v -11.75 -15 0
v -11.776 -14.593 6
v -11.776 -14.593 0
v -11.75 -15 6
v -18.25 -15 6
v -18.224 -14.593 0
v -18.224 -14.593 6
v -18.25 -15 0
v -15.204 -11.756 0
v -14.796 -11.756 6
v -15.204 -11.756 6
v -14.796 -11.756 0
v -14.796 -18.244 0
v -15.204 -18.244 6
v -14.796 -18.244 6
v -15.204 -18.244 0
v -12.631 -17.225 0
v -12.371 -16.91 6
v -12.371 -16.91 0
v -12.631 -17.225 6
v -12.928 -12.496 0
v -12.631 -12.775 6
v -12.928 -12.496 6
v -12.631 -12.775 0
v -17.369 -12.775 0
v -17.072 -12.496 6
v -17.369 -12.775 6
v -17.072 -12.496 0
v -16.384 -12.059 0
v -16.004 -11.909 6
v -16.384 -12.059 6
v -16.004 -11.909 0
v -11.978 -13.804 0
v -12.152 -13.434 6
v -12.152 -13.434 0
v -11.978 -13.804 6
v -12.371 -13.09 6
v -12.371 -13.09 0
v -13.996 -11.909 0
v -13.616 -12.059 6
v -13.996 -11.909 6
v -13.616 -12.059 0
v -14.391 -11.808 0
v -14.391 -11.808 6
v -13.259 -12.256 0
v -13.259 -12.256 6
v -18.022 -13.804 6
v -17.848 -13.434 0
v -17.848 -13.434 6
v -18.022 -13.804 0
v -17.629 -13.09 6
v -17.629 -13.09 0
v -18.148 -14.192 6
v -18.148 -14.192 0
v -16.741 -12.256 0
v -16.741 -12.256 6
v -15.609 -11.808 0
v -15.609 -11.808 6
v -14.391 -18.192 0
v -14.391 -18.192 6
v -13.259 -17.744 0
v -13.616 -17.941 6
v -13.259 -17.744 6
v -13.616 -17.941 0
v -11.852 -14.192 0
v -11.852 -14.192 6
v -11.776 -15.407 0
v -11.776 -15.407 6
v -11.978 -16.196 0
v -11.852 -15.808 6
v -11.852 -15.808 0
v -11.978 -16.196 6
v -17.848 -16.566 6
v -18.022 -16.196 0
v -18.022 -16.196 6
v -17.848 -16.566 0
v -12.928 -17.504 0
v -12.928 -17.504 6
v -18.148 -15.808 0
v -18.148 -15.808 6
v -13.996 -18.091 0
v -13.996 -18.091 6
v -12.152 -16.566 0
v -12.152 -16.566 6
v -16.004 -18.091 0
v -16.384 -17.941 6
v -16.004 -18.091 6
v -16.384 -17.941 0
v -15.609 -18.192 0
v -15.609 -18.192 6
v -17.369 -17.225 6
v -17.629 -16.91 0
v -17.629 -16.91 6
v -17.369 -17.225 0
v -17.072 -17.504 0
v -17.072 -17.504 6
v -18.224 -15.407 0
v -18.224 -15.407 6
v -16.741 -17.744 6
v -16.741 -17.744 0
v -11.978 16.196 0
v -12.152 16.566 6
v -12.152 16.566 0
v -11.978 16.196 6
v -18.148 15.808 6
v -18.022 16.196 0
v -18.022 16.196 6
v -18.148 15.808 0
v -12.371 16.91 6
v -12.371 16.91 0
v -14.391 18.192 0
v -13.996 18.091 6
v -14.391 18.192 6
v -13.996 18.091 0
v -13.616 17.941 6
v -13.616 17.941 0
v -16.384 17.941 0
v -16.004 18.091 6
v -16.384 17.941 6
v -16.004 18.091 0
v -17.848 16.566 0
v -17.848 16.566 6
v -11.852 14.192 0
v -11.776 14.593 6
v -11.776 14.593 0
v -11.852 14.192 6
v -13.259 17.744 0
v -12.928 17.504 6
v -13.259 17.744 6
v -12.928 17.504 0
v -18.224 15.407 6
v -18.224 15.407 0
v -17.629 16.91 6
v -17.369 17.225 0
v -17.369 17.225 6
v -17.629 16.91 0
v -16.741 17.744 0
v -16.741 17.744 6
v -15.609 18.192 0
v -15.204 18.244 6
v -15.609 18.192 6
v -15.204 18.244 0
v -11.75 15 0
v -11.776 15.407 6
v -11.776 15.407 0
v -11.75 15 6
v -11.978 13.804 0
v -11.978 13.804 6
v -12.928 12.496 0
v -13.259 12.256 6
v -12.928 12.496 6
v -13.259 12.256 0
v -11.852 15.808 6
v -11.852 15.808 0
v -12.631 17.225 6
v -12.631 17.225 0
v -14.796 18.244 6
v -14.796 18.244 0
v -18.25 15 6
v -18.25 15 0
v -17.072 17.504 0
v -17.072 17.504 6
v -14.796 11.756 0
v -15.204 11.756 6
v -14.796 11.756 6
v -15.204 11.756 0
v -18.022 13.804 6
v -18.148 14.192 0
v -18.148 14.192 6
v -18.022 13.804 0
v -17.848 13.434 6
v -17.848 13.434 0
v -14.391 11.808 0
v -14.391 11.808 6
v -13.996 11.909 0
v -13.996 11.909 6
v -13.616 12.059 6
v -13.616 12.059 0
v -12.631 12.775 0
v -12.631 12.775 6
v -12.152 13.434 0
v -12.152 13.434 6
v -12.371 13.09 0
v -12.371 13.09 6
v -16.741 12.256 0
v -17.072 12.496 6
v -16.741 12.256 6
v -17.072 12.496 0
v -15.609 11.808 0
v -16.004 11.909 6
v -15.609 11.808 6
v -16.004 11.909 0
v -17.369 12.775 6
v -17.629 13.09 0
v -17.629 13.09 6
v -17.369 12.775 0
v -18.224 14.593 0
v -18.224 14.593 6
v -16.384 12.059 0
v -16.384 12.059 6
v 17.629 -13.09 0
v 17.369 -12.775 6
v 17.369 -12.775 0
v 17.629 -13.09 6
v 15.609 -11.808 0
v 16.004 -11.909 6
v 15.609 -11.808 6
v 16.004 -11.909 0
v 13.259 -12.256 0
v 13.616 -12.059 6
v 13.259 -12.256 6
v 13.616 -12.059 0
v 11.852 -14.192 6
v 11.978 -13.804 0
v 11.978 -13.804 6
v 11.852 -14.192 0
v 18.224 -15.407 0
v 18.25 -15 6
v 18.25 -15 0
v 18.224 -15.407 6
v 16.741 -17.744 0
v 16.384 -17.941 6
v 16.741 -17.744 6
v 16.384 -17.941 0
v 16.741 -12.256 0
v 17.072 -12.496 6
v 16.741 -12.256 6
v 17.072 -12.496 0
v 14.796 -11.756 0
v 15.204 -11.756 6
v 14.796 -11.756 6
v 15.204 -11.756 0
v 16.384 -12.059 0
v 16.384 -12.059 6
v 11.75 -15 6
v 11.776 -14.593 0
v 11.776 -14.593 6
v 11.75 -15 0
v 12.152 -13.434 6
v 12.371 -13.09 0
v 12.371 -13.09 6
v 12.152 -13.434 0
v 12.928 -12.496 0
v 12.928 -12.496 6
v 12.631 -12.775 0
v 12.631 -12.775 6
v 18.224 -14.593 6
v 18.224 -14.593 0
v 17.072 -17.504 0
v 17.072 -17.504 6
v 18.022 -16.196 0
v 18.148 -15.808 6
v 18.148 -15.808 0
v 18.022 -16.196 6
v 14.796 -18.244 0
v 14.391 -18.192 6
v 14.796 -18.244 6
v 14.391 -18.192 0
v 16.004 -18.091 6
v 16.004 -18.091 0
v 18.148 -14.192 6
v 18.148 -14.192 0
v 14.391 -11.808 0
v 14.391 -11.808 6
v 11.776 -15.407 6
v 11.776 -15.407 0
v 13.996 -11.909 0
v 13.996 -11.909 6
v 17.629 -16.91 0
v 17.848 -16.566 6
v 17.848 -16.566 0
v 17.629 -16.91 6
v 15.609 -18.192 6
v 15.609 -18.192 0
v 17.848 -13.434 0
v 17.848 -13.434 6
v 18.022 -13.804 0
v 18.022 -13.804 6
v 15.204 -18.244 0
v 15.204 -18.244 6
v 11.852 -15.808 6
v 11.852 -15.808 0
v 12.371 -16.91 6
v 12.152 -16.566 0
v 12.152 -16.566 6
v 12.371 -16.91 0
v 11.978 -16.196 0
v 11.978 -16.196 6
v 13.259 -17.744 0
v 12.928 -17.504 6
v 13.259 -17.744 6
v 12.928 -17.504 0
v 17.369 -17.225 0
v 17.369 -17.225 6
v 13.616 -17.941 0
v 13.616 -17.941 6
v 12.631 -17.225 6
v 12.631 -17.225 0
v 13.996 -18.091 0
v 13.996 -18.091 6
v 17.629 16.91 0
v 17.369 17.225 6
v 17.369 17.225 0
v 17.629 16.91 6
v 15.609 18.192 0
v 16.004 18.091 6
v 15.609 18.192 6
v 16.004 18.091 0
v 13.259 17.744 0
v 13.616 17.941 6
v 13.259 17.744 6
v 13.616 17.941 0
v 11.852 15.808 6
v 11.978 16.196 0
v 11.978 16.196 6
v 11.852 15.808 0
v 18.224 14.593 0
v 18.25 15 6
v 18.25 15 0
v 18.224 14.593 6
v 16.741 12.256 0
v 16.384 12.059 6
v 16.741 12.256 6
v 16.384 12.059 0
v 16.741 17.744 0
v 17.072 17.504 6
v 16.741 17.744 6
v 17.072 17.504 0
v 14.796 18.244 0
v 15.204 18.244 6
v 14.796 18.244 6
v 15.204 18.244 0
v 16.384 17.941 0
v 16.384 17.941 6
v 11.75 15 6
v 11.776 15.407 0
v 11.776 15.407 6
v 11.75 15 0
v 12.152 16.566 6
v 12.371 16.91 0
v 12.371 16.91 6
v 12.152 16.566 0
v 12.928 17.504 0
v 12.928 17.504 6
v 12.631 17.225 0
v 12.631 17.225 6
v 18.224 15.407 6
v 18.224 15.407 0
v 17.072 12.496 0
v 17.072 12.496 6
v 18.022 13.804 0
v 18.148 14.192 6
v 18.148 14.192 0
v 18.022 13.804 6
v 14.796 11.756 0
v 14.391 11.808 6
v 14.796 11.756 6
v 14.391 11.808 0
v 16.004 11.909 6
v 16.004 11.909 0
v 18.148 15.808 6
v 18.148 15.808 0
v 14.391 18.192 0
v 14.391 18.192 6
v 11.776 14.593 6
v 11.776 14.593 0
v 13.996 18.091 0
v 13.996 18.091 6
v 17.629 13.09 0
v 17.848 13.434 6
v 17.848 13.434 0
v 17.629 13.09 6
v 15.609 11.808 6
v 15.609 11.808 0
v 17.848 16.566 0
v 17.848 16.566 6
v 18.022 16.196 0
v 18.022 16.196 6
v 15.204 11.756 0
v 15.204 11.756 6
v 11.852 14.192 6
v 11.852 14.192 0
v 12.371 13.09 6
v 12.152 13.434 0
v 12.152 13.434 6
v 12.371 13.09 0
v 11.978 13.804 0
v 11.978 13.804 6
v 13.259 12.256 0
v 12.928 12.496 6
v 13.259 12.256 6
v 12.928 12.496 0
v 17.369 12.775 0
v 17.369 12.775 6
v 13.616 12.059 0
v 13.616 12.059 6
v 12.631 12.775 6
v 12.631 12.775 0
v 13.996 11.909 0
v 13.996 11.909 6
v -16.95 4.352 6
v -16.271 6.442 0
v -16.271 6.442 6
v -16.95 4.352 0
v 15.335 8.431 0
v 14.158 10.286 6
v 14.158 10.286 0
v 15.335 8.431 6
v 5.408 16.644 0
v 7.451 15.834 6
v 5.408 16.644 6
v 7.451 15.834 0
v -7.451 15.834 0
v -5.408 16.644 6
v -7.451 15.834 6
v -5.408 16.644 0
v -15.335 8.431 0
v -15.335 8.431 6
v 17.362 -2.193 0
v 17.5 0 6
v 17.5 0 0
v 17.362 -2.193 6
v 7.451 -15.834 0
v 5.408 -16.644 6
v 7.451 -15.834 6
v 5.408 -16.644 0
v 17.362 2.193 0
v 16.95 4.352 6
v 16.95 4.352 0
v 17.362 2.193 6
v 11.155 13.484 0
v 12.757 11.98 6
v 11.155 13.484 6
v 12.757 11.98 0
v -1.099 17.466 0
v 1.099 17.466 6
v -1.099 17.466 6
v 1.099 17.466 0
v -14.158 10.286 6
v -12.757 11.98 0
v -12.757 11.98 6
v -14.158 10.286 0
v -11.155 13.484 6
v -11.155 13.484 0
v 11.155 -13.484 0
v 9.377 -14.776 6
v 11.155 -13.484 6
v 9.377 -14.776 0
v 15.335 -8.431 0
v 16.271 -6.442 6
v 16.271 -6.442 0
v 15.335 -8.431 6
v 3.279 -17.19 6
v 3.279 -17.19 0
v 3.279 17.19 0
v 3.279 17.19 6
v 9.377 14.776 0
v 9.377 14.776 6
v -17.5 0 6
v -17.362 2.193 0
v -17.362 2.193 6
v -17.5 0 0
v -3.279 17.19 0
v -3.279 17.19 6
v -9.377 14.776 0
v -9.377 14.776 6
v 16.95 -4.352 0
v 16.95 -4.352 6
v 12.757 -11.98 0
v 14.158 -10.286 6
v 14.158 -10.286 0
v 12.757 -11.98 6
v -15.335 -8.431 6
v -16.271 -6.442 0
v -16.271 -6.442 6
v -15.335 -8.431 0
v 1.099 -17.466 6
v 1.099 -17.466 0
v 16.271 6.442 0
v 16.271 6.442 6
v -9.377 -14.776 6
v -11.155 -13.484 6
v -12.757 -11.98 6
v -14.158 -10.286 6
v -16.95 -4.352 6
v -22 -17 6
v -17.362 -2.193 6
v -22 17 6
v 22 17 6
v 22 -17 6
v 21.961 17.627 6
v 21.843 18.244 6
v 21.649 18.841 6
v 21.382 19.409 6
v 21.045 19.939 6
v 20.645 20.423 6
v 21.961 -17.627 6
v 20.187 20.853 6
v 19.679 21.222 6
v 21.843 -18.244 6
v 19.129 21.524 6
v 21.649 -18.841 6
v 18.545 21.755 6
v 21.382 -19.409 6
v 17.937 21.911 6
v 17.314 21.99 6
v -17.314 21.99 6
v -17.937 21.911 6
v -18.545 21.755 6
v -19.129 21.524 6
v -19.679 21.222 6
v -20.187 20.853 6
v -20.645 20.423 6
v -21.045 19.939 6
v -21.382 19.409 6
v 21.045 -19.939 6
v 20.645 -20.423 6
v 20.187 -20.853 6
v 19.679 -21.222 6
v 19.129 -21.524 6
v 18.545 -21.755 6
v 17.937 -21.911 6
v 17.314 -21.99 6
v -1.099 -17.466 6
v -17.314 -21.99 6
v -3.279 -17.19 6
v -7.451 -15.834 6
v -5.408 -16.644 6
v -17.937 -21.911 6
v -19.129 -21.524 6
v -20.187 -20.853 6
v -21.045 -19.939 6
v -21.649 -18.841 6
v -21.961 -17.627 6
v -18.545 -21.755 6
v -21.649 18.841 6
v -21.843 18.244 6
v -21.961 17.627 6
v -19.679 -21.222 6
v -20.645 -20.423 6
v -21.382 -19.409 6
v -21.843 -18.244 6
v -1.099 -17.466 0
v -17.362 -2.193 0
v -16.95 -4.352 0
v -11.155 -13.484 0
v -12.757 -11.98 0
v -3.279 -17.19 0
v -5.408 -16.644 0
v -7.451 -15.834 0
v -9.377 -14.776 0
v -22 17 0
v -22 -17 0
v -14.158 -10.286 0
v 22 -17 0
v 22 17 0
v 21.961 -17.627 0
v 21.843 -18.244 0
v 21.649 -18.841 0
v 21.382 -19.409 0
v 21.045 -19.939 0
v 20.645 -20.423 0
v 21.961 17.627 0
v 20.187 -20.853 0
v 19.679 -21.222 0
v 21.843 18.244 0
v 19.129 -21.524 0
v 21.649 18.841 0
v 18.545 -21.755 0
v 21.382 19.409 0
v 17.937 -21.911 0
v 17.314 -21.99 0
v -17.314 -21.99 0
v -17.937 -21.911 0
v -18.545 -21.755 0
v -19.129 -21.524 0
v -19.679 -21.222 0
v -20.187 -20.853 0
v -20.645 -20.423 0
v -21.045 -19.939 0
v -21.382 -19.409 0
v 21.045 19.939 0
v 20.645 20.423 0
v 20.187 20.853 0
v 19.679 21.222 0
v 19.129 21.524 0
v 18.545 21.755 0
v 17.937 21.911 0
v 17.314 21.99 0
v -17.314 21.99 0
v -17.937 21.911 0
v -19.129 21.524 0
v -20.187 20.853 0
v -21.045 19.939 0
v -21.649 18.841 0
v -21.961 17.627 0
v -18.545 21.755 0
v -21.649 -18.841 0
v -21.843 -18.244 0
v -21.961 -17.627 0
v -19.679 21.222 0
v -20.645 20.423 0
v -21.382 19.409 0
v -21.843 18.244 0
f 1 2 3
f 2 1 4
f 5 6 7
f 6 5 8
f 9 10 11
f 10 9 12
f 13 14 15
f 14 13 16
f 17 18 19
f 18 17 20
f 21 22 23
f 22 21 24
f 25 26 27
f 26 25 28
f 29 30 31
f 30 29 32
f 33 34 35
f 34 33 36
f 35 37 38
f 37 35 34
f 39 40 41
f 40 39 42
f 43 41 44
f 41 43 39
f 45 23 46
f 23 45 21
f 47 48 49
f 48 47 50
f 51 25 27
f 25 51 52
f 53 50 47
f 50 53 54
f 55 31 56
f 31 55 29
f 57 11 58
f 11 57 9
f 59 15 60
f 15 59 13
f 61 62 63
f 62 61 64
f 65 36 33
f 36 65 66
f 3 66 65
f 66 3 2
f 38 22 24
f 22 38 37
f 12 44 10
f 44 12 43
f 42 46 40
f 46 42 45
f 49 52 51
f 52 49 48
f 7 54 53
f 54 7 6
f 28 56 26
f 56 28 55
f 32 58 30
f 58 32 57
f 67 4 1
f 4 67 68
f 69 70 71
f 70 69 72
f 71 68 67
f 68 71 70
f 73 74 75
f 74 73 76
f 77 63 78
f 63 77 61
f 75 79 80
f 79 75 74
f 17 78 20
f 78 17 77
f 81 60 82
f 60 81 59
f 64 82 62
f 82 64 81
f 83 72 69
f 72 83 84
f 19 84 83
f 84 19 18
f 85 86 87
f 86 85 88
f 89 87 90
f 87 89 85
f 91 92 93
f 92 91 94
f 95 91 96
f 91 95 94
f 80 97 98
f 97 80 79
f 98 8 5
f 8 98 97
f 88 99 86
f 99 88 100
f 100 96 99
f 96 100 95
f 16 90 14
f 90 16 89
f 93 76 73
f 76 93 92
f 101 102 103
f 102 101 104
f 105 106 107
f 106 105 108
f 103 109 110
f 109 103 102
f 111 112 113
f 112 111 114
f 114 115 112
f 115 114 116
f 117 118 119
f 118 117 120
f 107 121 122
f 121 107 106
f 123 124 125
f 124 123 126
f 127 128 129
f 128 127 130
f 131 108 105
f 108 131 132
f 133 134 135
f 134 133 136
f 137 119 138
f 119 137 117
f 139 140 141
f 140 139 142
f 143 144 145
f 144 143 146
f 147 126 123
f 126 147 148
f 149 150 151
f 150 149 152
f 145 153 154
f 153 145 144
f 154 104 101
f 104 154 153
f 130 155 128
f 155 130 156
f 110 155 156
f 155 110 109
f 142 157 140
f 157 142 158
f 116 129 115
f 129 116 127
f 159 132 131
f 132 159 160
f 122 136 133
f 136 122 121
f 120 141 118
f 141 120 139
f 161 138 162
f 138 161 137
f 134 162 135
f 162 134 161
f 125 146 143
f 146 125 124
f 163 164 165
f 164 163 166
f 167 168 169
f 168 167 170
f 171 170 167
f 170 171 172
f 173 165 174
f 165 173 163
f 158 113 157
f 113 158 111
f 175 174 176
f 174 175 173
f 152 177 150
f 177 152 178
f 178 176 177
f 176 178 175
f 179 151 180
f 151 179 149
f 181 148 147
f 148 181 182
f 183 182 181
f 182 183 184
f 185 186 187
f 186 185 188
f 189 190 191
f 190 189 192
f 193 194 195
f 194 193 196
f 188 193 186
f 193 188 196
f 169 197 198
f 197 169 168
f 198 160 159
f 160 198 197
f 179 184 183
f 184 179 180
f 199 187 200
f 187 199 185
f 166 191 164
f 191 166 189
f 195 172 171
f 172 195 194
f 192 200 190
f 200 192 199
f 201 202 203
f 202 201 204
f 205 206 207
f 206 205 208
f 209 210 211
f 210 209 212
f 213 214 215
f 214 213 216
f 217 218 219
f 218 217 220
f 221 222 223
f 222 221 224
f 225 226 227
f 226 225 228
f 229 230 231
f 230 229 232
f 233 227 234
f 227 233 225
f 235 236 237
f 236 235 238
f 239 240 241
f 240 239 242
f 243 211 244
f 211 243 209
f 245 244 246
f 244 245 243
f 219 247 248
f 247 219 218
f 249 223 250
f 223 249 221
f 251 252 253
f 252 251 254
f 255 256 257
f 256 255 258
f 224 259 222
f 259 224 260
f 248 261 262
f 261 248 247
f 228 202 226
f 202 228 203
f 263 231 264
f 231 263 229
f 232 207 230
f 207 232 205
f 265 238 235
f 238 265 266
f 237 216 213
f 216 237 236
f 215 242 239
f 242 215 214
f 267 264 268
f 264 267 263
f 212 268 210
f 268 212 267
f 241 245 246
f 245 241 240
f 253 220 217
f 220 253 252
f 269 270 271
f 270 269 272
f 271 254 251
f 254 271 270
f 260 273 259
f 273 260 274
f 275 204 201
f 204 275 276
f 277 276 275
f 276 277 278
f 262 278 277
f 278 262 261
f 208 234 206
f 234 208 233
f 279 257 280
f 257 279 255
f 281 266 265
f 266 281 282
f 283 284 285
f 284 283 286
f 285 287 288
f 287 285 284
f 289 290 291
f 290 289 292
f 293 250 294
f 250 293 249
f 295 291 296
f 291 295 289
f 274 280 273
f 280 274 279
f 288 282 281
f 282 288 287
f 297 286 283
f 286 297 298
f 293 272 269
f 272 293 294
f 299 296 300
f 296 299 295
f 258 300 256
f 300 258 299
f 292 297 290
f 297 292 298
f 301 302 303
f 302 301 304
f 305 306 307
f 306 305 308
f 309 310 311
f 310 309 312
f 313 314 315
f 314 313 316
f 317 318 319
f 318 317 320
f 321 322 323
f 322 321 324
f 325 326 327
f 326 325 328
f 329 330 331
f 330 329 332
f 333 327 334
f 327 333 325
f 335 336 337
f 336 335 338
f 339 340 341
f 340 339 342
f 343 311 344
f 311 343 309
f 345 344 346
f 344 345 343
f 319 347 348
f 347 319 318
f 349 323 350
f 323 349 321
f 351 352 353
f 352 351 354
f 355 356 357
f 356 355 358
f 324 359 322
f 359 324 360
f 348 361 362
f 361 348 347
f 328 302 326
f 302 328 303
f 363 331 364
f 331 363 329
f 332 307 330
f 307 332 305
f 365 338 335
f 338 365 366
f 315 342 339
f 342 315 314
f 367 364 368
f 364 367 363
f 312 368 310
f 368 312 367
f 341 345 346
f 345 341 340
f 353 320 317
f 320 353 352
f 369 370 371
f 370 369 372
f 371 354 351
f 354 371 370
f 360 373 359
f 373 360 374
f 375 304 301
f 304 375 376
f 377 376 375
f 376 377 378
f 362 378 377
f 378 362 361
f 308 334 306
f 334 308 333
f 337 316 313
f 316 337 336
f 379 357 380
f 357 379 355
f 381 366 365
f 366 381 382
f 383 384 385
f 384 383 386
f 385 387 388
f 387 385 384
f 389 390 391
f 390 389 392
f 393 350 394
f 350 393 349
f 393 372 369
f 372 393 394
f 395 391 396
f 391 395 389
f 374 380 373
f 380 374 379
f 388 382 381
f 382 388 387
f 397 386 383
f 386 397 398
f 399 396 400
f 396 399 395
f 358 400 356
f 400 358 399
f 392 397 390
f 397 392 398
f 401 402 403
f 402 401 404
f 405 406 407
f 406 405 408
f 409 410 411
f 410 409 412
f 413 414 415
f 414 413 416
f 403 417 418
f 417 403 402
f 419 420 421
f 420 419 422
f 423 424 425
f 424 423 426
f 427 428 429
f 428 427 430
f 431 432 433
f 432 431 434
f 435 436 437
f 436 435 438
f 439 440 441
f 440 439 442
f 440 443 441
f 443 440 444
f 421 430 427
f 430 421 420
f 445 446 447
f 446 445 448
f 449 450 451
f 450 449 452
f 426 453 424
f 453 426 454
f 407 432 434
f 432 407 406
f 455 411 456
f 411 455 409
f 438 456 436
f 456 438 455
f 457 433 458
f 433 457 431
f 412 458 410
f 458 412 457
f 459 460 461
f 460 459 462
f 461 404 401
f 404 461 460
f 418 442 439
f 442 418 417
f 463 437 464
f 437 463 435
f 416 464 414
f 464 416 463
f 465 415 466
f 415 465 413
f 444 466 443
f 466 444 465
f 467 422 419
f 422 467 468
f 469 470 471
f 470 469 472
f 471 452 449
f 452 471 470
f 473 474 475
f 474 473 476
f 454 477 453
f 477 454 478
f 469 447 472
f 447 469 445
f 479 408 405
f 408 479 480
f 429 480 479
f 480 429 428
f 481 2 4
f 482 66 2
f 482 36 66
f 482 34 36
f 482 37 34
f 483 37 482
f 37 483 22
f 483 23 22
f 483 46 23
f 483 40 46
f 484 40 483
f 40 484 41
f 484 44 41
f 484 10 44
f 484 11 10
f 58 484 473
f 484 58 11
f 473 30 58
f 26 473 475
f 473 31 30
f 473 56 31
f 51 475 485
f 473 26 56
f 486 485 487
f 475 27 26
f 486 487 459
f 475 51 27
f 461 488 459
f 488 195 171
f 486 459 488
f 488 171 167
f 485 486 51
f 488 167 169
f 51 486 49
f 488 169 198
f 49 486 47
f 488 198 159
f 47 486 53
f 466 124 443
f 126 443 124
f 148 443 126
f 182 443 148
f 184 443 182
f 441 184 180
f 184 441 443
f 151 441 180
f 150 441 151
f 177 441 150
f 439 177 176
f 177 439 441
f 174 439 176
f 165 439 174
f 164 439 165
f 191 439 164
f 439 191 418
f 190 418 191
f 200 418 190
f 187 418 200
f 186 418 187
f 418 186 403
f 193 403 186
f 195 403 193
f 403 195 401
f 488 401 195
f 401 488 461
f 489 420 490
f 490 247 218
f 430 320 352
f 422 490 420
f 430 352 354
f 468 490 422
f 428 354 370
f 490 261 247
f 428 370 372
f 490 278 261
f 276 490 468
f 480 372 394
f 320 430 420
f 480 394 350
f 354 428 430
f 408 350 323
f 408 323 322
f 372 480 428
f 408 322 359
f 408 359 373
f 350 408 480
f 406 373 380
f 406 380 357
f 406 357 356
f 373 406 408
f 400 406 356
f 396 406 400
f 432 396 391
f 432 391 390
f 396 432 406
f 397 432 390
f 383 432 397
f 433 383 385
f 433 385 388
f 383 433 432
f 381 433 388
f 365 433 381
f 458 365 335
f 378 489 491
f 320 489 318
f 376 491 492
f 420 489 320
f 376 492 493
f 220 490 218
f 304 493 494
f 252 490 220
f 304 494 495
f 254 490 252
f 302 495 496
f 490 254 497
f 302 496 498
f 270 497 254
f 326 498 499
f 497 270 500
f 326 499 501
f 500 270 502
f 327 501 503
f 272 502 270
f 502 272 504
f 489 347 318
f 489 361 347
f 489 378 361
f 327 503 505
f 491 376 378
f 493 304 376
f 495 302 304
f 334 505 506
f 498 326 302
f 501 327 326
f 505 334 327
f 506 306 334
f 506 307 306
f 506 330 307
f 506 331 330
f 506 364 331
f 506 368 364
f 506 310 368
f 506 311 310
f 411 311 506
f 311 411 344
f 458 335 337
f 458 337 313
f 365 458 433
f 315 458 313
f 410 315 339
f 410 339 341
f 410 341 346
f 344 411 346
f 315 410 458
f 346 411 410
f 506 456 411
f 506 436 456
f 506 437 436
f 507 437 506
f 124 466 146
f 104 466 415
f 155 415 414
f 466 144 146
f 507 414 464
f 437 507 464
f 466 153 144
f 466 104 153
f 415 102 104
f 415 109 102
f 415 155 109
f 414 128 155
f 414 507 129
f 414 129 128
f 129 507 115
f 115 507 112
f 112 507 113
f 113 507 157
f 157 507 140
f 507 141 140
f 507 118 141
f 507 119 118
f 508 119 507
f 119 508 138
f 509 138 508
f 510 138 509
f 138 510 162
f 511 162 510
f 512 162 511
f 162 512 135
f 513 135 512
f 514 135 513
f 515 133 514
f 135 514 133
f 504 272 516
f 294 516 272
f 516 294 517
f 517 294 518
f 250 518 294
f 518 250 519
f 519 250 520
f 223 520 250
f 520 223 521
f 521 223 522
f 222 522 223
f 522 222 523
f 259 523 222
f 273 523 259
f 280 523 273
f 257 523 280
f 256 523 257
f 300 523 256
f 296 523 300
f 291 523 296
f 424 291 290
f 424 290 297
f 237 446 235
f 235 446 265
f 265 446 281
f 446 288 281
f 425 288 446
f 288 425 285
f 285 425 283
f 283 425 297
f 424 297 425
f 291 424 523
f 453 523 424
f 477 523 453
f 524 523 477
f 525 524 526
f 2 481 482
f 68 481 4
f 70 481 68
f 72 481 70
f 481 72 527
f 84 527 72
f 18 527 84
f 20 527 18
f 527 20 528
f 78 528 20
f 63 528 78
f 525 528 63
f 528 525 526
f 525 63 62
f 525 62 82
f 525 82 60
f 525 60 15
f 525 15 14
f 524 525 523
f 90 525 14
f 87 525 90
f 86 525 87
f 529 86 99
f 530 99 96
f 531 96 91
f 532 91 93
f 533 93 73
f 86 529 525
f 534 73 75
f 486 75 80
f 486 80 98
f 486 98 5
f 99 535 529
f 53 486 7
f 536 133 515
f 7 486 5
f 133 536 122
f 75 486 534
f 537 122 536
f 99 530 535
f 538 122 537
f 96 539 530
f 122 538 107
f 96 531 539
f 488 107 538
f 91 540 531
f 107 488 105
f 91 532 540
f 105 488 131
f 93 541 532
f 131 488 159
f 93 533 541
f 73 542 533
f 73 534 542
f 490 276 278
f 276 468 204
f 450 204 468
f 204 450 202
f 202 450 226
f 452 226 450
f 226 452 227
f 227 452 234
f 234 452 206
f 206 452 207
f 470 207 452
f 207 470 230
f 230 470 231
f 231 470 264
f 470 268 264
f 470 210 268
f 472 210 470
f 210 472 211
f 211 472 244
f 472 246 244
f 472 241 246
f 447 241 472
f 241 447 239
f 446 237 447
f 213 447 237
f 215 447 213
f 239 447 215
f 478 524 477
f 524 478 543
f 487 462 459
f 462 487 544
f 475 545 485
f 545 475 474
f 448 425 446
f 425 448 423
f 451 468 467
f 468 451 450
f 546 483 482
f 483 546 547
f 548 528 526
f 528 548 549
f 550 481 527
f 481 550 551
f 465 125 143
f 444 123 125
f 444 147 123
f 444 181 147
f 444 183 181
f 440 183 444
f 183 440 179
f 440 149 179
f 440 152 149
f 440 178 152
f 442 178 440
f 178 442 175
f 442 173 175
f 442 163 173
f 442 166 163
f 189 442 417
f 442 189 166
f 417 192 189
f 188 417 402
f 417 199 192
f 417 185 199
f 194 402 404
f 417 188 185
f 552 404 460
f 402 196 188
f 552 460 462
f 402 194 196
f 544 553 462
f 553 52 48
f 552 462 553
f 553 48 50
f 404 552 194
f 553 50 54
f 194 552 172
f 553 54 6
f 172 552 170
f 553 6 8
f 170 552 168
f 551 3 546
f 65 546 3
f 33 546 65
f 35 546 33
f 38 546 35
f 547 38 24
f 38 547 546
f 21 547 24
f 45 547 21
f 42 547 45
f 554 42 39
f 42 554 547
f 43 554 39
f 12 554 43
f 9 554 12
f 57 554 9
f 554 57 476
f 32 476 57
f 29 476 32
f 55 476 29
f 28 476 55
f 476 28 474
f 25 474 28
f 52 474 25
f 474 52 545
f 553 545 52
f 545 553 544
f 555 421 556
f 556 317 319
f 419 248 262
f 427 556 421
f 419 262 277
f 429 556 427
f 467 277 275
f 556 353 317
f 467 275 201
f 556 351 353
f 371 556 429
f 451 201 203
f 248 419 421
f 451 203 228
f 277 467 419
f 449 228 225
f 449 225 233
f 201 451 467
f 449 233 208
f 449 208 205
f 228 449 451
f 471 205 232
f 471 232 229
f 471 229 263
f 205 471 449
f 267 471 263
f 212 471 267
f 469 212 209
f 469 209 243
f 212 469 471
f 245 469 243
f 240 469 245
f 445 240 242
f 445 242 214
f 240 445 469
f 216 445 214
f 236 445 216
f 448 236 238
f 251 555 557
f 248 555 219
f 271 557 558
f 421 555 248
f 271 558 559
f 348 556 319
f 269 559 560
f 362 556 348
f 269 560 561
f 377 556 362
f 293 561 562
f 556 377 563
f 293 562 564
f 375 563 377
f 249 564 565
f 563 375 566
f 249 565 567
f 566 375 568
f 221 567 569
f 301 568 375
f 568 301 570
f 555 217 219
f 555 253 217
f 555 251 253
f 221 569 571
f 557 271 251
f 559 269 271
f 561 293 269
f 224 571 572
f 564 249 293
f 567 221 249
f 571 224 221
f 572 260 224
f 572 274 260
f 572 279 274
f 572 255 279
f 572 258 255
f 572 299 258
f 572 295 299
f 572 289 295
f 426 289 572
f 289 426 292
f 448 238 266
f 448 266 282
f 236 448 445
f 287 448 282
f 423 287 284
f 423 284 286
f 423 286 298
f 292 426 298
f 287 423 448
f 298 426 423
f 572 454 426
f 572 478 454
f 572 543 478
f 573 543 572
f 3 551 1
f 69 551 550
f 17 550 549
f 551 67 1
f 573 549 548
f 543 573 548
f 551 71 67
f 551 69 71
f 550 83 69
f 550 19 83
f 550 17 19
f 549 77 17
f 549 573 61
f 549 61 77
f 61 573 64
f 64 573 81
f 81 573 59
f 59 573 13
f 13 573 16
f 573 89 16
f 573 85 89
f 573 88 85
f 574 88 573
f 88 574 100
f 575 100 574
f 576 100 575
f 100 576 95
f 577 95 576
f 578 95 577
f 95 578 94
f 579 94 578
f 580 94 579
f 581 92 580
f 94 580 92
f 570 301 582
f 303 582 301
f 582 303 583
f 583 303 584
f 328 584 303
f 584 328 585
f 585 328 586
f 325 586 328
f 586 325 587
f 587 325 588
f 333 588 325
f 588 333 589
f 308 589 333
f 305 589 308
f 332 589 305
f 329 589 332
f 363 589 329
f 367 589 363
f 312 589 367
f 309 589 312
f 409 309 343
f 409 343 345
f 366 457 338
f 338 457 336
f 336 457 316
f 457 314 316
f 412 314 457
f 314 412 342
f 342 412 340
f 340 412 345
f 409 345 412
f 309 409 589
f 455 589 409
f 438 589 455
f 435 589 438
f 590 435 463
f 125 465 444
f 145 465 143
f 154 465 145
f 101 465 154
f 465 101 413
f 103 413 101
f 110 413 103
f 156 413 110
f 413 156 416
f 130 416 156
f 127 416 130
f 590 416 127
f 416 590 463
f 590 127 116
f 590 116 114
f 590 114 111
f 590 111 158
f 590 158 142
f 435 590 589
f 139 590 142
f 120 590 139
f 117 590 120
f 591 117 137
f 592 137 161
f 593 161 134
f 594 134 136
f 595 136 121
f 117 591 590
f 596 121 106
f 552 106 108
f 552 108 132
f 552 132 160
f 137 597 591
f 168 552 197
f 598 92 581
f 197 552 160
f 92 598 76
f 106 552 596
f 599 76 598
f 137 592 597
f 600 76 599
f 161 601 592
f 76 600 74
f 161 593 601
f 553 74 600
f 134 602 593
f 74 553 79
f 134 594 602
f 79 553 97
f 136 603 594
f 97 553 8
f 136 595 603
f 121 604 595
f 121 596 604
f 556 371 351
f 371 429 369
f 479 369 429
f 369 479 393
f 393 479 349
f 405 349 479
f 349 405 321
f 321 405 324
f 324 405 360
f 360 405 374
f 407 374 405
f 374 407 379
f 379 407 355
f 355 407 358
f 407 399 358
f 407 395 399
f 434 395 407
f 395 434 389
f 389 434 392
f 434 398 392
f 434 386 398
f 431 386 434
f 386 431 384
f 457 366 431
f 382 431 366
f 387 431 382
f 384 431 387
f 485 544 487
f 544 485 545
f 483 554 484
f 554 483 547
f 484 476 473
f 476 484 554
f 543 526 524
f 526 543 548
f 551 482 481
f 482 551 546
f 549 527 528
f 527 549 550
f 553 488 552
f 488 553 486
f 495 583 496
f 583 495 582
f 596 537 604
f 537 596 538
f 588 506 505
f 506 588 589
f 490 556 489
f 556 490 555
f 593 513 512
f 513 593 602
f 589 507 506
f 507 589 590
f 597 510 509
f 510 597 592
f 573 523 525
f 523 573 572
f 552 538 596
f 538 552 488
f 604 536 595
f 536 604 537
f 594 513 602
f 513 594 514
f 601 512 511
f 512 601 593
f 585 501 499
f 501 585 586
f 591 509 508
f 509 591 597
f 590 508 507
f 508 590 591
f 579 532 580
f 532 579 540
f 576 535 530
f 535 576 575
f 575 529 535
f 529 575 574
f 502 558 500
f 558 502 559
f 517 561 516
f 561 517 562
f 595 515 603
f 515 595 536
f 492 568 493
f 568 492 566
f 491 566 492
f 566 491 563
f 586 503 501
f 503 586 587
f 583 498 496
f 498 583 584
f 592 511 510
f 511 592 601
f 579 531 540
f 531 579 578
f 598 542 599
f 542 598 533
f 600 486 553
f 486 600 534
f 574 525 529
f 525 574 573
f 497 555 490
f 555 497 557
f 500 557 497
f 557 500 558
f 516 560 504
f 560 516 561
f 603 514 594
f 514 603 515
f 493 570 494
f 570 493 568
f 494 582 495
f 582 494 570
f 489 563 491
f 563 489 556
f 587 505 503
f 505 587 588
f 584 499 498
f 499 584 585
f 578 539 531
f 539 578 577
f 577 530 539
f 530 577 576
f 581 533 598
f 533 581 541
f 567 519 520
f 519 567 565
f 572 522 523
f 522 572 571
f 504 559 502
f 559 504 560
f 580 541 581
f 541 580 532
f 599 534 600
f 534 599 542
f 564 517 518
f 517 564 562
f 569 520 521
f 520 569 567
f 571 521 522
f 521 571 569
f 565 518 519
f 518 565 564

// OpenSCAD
$fn = 50;


difference() {
	union() {
		hull() {
			translate(v = [-17.0000000000, 17.0000000000, 0]) {
				cylinder(h = 6, r = 5);
			}
			translate(v = [17.0000000000, 17.0000000000, 0]) {
				cylinder(h = 6, r = 5);
			}
			translate(v = [-17.0000000000, -17.0000000000, 0]) {
				cylinder(h = 6, r = 5);
			}
			translate(v = [17.0000000000, -17.0000000000, 0]) {
				cylinder(h = 6, r = 5);
			}
		}
	}
	union() {
		#translate(v = [-15.0000000000, -15.0000000000, -100.0000000000]) {
			cylinder(h = 200, r = 3.2500000000);
		}
		#translate(v = [-15.0000000000, 15.0000000000, -100.0000000000]) {
			cylinder(h = 200, r = 3.2500000000);
		}
		#translate(v = [15.0000000000, -15.0000000000, -100.0000000000]) {
			cylinder(h = 200, r = 3.2500000000);
		}
		#translate(v = [15.0000000000, 15.0000000000, -100.0000000000]) {
			cylinder(h = 200, r = 3.2500000000);
		}
		#cylinder(h = 6, r = 17.5000000000);
	}
}
